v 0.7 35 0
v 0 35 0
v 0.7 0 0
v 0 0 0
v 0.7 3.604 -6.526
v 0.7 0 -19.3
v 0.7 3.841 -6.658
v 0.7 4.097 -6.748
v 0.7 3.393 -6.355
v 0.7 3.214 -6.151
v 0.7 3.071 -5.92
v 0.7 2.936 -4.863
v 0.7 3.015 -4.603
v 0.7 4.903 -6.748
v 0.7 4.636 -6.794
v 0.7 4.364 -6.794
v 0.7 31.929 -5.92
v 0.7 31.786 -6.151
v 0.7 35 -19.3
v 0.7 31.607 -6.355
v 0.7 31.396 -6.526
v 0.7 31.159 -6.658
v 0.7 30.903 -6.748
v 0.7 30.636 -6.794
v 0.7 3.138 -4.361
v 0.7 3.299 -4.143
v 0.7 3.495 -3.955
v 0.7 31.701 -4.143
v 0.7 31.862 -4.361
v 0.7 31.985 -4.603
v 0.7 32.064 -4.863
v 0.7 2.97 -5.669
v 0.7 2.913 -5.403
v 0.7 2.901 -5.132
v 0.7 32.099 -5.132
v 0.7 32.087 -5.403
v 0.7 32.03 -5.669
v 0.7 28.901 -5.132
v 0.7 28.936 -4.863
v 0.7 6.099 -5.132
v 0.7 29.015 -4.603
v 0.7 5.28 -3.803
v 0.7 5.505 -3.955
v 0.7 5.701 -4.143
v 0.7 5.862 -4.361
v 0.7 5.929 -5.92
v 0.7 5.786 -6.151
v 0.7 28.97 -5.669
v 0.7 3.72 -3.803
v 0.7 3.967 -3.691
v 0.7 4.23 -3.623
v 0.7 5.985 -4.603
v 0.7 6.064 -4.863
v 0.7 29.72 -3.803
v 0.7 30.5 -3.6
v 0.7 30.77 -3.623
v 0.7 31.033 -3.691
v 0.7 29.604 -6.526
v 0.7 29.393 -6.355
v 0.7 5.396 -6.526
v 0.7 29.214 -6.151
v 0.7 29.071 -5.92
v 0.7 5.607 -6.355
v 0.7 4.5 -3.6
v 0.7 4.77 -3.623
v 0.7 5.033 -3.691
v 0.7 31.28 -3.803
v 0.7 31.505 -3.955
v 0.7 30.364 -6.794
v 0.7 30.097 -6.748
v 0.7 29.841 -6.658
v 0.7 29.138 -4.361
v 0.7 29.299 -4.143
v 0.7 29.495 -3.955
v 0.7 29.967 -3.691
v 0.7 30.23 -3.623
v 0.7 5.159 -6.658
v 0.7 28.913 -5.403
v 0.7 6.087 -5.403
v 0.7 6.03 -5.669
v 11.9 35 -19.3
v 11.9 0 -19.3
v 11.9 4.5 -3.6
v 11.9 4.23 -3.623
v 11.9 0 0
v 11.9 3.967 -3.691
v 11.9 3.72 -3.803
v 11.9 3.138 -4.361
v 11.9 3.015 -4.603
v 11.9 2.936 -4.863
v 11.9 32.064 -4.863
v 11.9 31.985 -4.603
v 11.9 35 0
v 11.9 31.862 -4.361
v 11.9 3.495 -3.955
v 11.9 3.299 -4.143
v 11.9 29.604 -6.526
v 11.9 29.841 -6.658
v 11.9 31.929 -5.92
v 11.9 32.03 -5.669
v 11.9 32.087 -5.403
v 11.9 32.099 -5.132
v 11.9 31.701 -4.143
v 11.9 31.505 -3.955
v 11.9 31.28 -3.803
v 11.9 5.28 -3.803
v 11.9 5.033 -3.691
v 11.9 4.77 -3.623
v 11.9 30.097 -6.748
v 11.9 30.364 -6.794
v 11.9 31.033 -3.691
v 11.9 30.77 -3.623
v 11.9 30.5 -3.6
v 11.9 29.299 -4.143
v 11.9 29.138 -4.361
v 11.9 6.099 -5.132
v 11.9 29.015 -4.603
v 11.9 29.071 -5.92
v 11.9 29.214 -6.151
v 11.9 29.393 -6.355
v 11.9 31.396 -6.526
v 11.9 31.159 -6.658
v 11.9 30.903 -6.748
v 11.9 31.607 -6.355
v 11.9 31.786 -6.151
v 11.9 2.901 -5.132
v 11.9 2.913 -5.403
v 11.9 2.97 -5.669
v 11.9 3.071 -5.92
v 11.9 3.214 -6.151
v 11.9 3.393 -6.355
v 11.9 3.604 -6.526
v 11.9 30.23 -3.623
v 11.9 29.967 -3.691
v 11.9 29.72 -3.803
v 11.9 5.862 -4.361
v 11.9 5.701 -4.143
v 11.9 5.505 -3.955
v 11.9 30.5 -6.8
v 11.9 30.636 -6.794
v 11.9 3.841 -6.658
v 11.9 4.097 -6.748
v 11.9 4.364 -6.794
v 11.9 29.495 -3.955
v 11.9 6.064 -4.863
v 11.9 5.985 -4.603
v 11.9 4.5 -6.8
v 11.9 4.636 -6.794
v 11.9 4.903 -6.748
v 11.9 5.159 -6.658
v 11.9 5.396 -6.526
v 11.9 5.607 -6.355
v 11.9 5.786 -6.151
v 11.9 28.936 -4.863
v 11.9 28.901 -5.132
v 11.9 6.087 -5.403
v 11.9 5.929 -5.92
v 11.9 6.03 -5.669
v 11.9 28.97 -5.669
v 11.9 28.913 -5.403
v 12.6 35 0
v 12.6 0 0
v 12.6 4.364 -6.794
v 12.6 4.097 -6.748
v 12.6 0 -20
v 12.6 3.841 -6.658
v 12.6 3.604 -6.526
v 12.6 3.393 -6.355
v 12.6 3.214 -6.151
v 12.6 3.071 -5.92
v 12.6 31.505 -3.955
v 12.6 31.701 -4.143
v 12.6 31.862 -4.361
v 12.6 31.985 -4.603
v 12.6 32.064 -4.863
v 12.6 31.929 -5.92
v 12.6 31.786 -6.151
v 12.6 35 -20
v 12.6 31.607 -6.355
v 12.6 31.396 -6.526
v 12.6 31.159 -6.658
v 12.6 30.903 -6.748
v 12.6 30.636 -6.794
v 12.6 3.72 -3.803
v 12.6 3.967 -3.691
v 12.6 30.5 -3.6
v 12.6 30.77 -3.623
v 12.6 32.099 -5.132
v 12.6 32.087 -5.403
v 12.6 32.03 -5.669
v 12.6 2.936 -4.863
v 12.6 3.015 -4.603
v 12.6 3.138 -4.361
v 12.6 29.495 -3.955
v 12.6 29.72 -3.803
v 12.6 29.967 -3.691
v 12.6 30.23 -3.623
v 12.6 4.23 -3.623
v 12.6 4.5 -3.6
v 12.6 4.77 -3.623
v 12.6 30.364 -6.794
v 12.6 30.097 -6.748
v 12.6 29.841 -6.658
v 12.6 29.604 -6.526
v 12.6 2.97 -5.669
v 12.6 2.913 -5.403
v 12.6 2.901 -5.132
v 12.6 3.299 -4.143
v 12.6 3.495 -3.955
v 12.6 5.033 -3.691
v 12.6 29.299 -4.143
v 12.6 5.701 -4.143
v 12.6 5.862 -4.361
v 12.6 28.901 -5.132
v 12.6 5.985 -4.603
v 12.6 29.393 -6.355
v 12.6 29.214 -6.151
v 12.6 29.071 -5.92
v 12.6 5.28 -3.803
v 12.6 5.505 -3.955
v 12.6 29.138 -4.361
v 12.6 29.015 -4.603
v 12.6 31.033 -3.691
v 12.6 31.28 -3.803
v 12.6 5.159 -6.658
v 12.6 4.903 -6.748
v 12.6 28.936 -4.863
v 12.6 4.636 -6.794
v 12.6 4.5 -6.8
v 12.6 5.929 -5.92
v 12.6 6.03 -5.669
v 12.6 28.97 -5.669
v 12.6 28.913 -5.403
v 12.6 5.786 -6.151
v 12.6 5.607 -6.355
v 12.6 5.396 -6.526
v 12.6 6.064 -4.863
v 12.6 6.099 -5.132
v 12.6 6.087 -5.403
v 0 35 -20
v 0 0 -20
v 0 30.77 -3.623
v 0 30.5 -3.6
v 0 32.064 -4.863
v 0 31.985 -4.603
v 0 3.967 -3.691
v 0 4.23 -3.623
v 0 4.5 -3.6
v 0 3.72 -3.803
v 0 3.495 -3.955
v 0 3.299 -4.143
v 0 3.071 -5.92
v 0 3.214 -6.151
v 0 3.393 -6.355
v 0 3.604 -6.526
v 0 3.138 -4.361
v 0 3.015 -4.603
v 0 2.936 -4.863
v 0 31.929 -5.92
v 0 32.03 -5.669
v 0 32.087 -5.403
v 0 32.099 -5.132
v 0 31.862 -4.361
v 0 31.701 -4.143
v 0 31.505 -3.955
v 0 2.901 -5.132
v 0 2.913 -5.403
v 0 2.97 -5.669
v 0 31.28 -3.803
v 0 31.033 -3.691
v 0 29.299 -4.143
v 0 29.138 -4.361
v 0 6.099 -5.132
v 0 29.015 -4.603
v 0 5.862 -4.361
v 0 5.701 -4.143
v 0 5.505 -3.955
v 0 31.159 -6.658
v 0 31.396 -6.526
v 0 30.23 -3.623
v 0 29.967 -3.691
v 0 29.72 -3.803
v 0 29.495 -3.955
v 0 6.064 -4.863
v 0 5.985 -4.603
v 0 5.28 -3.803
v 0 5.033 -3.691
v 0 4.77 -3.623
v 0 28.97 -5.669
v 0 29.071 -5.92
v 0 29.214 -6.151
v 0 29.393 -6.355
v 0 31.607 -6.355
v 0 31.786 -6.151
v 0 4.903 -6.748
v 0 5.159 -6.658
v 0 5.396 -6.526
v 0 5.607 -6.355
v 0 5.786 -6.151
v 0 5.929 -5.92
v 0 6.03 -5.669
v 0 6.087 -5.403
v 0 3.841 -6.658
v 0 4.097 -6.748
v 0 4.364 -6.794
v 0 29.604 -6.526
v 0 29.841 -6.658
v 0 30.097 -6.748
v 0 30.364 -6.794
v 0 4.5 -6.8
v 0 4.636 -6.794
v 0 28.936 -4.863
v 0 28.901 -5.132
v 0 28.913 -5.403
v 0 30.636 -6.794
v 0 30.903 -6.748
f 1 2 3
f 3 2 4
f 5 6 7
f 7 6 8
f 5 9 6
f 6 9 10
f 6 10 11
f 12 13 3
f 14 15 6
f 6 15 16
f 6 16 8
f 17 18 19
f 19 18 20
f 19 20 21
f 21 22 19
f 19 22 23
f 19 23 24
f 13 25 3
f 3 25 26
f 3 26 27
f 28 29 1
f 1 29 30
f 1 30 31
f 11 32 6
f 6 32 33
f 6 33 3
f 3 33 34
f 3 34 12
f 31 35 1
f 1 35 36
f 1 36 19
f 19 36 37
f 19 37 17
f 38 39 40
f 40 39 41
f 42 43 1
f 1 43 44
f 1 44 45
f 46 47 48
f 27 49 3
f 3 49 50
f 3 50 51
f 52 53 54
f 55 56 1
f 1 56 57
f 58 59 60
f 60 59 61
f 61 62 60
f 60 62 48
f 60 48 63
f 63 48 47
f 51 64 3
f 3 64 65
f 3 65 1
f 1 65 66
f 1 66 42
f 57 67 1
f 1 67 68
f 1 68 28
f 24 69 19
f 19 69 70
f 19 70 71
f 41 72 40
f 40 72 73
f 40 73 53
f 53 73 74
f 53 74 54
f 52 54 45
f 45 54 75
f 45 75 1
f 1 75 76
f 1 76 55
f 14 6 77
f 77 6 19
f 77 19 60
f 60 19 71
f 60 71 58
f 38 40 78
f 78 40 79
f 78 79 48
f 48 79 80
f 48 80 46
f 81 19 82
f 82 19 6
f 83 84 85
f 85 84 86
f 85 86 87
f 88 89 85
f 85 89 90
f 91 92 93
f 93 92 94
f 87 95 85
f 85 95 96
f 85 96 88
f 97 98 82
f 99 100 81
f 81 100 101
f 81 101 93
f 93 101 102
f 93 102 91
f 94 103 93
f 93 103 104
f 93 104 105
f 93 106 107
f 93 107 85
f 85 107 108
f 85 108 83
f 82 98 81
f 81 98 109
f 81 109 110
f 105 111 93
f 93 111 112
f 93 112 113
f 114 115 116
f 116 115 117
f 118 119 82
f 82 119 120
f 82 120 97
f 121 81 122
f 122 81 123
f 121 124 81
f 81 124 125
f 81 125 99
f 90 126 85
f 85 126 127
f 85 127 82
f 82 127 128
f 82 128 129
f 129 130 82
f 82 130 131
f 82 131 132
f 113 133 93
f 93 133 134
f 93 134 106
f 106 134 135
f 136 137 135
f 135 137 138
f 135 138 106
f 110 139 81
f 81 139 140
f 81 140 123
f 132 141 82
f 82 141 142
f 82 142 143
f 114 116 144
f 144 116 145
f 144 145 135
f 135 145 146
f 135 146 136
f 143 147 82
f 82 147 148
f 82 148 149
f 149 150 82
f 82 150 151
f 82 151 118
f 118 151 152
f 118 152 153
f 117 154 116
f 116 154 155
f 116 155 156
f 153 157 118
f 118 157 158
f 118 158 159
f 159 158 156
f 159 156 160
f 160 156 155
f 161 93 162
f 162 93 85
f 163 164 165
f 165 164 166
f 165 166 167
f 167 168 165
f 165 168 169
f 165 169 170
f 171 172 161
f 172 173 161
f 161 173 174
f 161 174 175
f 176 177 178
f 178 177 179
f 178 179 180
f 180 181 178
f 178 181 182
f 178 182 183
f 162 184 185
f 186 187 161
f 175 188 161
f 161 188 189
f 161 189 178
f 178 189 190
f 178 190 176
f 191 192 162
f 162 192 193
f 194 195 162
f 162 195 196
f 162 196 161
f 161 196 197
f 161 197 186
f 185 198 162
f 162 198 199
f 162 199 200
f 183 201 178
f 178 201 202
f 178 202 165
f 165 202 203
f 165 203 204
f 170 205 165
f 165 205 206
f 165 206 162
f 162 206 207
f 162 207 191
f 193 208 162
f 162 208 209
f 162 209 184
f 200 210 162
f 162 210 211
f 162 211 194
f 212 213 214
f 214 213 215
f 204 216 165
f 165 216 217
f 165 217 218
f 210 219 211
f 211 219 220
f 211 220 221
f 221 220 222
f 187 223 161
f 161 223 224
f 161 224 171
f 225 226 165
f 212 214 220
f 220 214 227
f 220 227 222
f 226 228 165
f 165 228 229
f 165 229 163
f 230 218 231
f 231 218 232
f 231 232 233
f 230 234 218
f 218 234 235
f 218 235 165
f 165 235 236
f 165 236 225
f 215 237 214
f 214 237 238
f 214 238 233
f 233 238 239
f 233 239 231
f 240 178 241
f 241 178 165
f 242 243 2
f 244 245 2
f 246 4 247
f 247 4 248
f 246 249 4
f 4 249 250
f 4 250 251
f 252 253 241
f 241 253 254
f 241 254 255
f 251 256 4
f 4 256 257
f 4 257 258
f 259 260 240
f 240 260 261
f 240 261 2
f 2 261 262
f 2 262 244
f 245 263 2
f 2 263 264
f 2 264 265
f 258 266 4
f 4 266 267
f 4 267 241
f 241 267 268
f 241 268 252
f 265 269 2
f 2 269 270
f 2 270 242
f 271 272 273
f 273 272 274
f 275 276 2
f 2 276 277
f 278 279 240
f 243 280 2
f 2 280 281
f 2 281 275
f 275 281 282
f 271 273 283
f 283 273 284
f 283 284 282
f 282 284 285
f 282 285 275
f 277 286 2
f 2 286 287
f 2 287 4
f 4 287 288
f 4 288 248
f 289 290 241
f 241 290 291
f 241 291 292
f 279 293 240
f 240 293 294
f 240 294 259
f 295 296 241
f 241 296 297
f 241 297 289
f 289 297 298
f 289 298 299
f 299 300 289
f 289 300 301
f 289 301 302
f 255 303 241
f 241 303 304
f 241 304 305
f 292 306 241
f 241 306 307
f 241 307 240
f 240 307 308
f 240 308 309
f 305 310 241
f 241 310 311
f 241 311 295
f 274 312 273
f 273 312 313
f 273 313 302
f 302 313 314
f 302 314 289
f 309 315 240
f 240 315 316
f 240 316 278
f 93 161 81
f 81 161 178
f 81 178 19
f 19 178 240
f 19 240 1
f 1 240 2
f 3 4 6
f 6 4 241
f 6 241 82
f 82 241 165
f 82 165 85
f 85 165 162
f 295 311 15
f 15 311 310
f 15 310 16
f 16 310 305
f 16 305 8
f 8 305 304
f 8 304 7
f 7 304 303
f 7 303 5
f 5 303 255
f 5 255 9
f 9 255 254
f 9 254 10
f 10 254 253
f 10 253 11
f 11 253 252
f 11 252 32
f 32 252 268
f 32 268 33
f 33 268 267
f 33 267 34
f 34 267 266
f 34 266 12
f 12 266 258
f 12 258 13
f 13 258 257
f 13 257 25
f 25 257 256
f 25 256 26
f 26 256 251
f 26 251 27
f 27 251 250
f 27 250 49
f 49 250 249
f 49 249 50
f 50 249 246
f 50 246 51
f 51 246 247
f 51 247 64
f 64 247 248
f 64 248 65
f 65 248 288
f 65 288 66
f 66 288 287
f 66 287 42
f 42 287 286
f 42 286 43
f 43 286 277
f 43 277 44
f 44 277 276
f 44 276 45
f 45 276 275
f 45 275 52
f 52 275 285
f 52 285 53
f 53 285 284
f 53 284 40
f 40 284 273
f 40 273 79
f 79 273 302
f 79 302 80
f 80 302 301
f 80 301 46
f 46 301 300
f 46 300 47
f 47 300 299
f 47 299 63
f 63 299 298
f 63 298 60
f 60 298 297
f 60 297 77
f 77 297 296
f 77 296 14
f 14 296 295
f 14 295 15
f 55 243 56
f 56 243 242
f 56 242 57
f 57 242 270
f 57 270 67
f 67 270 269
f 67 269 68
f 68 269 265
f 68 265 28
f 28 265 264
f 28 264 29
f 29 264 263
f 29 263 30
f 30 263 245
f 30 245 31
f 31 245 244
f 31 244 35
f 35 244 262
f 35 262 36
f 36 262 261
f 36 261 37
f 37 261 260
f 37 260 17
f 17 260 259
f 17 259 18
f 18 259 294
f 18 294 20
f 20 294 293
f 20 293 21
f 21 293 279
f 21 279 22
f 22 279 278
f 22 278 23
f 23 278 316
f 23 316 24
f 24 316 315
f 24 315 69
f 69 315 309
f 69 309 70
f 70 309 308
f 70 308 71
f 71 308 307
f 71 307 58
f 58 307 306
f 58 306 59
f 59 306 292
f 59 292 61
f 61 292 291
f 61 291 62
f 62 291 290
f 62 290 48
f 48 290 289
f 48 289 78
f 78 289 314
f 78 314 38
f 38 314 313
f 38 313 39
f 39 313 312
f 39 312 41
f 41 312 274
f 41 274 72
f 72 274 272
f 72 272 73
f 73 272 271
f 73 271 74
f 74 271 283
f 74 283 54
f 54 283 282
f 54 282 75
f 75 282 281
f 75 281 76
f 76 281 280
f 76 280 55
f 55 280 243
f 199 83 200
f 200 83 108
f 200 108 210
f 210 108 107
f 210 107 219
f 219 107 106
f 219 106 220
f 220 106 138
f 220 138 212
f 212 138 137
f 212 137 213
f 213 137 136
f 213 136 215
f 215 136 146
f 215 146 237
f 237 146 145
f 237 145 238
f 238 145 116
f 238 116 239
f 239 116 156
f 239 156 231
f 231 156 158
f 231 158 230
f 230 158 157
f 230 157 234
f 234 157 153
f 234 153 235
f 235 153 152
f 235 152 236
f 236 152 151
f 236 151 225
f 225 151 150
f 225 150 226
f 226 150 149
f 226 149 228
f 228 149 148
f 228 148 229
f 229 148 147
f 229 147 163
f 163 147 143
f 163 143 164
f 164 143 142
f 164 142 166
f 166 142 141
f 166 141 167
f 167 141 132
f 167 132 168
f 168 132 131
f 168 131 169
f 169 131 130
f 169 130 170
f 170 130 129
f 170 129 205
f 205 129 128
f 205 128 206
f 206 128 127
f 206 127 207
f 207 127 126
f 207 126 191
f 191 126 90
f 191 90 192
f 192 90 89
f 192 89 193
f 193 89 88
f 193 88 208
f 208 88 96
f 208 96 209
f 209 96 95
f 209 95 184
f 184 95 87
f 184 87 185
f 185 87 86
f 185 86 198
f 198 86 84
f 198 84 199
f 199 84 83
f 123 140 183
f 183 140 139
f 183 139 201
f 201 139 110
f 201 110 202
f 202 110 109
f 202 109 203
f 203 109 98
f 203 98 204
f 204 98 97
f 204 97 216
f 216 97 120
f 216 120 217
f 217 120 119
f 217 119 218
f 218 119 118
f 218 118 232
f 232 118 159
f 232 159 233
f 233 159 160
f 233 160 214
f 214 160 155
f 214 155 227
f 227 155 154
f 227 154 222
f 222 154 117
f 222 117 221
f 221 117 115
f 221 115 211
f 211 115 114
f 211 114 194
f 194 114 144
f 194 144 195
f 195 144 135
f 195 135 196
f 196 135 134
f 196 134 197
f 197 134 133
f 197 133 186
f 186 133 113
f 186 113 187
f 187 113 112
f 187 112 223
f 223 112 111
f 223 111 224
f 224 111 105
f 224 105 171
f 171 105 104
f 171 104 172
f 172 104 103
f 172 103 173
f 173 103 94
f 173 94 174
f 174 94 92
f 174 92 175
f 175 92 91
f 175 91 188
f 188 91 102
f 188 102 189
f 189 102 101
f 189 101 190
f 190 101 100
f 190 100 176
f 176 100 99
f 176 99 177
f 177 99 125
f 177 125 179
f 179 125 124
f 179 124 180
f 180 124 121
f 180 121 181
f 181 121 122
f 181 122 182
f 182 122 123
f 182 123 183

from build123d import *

# Parameters (mm, degrees)
EXTRUDE_1_DEPTH     = 35
SKETCH_2_R          = 1.6
CUT_EXTRUDE_1_DEPTH = 43.234582986


with BuildPart() as part:
    # 草图1 → 凸台-拉伸1 (new body)
    with BuildSketch(Plane(origin=(0, 0, 0), x_dir=(1, 0, 0), z_dir=(0, 1, 0))):
        Polygon((0, 0), (0, 20), (12.6, 20), (12.6, 9.502030119), (12.6, 0), (11.9, 0), (11.9, 19.3), (0.7, 19.3), (0.7, 0), align=None)
    extrude(amount=EXTRUDE_1_DEPTH)

    # 草图2 → 切除-拉伸1 (cut, through all)
    with BuildSketch(Plane.ZY):
        with Locations((-5.2, 30.5)):
            Circle(SKETCH_2_R)
        with Locations((-5.2, 4.5)):
            Circle(SKETCH_2_R)
    extrude(amount=-CUT_EXTRUDE_1_DEPTH, mode=Mode.SUBTRACT)


solid = part.part
